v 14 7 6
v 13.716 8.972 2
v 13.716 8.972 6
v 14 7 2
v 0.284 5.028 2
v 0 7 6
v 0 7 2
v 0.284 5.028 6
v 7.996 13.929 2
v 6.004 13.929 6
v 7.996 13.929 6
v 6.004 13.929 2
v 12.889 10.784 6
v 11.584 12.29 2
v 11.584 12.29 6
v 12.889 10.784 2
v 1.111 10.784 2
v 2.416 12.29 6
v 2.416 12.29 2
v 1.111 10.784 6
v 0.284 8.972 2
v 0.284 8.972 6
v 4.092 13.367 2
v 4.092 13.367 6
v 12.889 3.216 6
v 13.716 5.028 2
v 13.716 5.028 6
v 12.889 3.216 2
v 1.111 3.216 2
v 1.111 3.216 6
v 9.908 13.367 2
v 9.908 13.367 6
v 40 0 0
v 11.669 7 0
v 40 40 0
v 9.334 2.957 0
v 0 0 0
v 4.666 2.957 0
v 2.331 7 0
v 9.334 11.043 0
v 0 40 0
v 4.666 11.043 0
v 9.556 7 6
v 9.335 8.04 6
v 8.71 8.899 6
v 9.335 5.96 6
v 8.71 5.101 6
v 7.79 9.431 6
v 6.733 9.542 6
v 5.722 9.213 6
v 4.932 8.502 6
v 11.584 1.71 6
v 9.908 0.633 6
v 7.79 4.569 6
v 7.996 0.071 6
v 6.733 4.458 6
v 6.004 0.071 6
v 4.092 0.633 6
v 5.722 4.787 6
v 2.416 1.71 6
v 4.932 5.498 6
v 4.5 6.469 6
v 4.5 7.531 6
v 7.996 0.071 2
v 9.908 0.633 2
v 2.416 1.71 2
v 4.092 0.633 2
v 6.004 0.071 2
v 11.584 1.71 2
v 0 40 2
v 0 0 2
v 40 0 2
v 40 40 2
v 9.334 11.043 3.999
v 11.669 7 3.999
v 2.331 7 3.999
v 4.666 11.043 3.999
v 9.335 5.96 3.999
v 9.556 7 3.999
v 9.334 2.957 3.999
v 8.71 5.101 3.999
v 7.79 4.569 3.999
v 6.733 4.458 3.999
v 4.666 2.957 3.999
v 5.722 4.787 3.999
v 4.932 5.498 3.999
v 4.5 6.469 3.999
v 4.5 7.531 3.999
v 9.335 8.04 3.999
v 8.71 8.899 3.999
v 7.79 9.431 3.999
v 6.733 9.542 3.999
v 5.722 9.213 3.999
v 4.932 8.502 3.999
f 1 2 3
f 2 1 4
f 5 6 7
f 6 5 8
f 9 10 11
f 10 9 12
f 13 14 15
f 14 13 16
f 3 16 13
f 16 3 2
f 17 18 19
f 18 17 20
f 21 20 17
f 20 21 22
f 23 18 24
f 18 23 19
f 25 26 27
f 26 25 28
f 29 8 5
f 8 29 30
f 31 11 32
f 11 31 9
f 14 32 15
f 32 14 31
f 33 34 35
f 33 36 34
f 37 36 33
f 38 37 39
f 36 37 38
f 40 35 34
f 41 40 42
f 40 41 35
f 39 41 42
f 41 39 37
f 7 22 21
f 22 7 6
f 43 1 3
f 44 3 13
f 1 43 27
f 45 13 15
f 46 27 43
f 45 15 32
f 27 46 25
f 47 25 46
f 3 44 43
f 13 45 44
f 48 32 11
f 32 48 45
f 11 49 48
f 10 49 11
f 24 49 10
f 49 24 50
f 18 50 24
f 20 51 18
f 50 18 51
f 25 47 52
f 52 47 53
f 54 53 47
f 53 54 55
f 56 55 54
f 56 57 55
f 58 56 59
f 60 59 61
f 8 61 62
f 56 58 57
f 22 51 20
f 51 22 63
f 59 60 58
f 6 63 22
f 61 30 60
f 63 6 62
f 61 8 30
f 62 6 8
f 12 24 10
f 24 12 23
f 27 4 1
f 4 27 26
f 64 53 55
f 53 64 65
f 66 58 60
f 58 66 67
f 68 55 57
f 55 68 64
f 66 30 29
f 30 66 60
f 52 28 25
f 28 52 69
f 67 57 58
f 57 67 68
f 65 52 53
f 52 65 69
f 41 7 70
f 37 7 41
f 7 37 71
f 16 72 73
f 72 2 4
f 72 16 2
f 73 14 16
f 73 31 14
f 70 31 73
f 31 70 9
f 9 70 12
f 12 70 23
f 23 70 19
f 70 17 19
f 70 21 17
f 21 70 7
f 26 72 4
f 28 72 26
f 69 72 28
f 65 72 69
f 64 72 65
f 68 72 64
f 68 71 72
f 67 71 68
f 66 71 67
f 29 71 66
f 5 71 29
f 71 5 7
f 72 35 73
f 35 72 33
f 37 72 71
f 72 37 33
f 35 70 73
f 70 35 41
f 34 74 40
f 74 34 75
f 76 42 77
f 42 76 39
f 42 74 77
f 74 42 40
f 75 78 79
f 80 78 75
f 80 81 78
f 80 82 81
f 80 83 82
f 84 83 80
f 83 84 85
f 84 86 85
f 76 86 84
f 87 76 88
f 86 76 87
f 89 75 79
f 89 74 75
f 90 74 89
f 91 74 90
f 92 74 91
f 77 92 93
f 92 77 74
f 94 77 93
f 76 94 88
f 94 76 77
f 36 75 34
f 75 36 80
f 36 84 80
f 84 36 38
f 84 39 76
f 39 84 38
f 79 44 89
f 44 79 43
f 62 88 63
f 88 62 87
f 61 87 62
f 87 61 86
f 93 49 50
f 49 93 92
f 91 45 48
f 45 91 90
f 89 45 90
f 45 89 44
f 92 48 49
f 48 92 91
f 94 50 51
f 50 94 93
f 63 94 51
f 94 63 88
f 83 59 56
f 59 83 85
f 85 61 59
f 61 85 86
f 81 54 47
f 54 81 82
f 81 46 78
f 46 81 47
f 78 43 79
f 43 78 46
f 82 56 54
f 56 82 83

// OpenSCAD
// file: lib/hole.scad
module cylinder_outer(h,d=undef,d1=undef,d2=undef,fn=15) {
	fudge = cos(180/fn);
	cylinder(h=h,d=d/fudge,d1=d1/fudge,d2=d2/fudge,$fn=fn);
}

module hole(d, height, countersink=0, extra_above=false) {
	height = height - countersink;
	translate([0, 0, -(height+countersink)]) {
		translate([0, 0, height+0.001]) cylinder_outer(d1=d, d2=d*1.5, h=countersink);
		if (extra_above) {
			translate([0, 0, height+0.001]) cylinder_outer(d1=d, d2=d*2, h=countersink*3/2);
		}
		if (height > 0)
			translate([0, 0, -2]) cylinder_outer(d=d, h=height+2.1);
	}
}

module nut_trap(w, h, sides){
	cylinder(r = w / 2 / cos(180 / 6) + 0.05, h=h, $fn=6);
}
// main file
use <lib/hole.scad>;

h=6;

difference() {
	union() {
		translate([7, 7, 0]) cylinder(d=14, h=h);
		cube([40, 40, 2]);
	}
	translate([7, 7, -0.001]) {
		nut_trap(8, 4, 6.001);
		cylinder_outer(d=5, h=h + 0.002);
	}
}
